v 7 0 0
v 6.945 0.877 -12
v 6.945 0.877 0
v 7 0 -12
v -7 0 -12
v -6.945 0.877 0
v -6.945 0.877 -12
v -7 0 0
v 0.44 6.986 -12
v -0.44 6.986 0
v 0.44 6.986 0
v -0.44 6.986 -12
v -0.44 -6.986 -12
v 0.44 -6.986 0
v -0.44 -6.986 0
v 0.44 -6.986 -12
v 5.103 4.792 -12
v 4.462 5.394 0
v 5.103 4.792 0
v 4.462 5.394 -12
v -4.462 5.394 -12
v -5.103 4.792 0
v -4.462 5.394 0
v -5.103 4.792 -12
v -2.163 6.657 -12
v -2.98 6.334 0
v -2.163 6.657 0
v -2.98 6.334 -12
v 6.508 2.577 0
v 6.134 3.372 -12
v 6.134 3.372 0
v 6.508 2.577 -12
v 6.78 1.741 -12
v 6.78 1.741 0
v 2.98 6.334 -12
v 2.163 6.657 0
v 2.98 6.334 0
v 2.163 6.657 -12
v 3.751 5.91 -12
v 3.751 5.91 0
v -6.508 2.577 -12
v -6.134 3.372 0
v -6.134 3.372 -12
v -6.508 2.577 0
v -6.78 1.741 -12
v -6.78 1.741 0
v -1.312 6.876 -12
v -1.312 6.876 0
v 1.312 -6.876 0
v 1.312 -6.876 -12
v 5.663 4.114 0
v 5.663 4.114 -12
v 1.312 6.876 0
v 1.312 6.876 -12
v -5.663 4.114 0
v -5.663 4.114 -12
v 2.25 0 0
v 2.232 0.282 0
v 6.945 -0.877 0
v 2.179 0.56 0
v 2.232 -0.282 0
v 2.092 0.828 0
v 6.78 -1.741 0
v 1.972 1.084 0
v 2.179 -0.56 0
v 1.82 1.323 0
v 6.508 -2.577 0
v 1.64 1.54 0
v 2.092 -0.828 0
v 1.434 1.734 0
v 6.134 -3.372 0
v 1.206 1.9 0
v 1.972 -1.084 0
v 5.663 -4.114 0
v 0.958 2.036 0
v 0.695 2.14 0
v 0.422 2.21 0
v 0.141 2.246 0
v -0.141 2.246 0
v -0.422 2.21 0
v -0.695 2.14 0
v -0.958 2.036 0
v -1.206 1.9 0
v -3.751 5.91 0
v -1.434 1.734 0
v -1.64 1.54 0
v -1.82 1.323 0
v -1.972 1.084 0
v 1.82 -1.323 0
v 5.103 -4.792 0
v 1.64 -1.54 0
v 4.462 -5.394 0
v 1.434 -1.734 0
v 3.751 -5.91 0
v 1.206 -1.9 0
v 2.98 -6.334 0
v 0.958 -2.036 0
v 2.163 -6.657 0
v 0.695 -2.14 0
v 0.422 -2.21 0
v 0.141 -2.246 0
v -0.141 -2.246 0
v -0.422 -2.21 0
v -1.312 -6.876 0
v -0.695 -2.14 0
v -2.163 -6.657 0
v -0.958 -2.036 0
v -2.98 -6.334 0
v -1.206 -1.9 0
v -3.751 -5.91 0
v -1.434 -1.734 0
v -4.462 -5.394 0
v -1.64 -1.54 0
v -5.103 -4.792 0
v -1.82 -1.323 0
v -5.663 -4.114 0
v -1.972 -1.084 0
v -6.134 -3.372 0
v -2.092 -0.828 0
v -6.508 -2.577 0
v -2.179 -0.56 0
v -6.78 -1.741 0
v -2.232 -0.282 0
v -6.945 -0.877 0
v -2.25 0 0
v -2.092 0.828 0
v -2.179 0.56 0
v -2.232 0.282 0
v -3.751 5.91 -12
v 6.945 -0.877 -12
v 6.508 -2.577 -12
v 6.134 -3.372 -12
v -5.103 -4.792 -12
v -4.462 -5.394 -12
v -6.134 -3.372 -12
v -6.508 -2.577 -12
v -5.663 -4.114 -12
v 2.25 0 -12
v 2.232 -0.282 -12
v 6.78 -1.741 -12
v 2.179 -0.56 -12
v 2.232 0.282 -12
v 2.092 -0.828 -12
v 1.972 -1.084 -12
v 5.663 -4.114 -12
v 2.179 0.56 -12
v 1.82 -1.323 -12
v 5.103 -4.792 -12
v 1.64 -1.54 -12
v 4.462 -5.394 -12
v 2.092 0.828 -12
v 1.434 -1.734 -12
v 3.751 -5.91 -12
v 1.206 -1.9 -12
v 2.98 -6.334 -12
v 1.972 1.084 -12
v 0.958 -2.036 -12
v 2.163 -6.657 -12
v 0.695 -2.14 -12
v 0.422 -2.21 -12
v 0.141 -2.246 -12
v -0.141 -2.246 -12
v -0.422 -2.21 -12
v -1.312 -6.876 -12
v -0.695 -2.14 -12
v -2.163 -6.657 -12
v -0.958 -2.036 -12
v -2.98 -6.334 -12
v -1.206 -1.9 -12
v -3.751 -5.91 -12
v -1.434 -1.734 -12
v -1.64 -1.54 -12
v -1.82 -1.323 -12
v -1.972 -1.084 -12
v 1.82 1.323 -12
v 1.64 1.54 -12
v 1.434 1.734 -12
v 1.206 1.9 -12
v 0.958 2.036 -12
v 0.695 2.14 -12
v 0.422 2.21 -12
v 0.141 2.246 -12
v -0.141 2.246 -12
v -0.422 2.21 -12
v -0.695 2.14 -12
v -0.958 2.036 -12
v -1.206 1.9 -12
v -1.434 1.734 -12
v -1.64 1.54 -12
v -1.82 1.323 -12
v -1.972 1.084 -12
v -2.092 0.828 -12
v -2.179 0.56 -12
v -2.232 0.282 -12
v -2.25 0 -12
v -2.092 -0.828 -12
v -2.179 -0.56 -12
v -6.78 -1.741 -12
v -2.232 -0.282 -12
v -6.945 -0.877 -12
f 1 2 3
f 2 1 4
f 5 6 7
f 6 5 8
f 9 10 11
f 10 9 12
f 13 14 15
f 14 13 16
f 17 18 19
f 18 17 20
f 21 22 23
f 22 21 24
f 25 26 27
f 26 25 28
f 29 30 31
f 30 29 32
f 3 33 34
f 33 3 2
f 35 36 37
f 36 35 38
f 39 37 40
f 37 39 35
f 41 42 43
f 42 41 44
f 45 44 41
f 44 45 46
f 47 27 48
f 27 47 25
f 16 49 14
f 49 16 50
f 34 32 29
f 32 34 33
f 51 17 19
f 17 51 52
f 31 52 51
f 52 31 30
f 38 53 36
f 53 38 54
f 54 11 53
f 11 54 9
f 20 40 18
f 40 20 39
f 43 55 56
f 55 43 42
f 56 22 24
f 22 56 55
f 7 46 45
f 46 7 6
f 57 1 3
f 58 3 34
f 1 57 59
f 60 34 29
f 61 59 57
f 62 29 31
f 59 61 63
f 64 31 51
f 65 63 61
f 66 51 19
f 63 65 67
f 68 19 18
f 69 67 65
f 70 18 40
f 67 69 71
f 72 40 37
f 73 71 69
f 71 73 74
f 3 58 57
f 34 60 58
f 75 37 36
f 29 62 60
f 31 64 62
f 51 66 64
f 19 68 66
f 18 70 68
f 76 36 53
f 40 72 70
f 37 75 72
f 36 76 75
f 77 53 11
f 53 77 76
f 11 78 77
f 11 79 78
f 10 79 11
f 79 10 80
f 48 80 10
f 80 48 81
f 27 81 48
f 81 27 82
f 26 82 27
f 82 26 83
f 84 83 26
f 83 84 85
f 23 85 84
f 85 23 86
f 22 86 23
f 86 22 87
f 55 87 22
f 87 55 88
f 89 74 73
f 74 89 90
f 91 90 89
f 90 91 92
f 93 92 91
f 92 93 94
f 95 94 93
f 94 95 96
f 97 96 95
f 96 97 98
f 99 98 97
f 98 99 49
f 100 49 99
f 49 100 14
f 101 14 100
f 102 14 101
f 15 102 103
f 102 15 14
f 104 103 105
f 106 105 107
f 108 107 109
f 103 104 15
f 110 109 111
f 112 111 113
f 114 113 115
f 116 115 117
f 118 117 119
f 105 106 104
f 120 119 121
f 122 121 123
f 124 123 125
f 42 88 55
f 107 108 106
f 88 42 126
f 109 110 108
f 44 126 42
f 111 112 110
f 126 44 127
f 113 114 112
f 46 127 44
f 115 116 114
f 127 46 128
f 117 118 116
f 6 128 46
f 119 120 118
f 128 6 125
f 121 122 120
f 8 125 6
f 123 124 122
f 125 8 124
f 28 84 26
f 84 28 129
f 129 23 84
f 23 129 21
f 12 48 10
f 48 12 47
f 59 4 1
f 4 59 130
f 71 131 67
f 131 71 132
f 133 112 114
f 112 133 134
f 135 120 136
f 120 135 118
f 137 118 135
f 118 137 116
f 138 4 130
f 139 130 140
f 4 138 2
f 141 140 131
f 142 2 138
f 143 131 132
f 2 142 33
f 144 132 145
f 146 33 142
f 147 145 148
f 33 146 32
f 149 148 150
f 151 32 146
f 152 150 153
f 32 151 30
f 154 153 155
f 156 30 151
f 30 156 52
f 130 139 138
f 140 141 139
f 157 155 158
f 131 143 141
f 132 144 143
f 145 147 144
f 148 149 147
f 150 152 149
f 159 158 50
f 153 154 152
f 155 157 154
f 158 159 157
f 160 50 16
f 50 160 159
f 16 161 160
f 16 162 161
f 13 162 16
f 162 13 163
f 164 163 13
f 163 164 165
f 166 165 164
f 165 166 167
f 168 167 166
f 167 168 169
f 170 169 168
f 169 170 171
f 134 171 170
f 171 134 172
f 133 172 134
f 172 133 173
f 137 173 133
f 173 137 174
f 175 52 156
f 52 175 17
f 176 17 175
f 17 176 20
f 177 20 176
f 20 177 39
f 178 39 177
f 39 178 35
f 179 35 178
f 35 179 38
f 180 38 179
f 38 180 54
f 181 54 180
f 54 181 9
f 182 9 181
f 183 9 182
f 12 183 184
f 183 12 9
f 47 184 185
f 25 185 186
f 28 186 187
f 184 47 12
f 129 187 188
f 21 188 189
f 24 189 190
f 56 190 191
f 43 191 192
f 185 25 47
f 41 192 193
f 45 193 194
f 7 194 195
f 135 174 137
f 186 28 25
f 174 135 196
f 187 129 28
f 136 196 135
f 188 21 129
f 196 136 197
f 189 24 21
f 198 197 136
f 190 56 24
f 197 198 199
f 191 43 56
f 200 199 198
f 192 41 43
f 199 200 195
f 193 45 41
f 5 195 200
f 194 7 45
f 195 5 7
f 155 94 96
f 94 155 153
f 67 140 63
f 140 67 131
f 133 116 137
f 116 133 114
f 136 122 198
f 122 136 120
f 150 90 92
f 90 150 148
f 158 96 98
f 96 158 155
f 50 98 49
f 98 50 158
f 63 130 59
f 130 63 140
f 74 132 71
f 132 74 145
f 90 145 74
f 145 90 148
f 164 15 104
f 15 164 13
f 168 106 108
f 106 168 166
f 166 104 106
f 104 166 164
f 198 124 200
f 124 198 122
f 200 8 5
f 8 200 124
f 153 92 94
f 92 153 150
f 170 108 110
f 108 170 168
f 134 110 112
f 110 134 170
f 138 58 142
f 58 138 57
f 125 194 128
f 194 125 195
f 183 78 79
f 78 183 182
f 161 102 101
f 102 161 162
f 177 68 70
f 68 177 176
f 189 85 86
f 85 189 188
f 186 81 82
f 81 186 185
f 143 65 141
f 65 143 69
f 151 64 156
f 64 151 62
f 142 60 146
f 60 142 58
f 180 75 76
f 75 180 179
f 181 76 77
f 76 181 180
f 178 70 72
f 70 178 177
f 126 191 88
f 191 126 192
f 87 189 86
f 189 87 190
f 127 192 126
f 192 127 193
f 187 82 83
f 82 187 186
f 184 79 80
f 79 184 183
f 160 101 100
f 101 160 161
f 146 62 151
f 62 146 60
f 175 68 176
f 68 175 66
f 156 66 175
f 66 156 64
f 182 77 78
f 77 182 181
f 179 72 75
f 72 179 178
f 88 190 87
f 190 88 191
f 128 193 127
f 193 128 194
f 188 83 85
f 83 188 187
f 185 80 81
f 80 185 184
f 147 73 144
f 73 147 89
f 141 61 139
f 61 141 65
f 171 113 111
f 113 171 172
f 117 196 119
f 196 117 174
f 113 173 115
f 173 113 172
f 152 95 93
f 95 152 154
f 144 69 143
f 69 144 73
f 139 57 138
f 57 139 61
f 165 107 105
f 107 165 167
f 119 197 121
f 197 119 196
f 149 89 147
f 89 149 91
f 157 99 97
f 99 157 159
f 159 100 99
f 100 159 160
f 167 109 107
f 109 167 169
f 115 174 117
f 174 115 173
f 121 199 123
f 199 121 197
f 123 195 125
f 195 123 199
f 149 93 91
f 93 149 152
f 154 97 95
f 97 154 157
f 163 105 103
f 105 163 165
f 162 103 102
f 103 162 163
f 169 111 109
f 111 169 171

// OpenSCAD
$fn = 50;


difference() {
	union() {
		translate(v = [0, 0, -12.0000000000]) {
			cylinder(h = 12, r = 7.0000000000);
		}
		cylinder(h = 0, r = 13.0000000000);
	}
	union() {
		#translate(v = [0, 0, -12]) {
			cylinder(h = 12, r = 2.2500000000);
		}
	}
}
